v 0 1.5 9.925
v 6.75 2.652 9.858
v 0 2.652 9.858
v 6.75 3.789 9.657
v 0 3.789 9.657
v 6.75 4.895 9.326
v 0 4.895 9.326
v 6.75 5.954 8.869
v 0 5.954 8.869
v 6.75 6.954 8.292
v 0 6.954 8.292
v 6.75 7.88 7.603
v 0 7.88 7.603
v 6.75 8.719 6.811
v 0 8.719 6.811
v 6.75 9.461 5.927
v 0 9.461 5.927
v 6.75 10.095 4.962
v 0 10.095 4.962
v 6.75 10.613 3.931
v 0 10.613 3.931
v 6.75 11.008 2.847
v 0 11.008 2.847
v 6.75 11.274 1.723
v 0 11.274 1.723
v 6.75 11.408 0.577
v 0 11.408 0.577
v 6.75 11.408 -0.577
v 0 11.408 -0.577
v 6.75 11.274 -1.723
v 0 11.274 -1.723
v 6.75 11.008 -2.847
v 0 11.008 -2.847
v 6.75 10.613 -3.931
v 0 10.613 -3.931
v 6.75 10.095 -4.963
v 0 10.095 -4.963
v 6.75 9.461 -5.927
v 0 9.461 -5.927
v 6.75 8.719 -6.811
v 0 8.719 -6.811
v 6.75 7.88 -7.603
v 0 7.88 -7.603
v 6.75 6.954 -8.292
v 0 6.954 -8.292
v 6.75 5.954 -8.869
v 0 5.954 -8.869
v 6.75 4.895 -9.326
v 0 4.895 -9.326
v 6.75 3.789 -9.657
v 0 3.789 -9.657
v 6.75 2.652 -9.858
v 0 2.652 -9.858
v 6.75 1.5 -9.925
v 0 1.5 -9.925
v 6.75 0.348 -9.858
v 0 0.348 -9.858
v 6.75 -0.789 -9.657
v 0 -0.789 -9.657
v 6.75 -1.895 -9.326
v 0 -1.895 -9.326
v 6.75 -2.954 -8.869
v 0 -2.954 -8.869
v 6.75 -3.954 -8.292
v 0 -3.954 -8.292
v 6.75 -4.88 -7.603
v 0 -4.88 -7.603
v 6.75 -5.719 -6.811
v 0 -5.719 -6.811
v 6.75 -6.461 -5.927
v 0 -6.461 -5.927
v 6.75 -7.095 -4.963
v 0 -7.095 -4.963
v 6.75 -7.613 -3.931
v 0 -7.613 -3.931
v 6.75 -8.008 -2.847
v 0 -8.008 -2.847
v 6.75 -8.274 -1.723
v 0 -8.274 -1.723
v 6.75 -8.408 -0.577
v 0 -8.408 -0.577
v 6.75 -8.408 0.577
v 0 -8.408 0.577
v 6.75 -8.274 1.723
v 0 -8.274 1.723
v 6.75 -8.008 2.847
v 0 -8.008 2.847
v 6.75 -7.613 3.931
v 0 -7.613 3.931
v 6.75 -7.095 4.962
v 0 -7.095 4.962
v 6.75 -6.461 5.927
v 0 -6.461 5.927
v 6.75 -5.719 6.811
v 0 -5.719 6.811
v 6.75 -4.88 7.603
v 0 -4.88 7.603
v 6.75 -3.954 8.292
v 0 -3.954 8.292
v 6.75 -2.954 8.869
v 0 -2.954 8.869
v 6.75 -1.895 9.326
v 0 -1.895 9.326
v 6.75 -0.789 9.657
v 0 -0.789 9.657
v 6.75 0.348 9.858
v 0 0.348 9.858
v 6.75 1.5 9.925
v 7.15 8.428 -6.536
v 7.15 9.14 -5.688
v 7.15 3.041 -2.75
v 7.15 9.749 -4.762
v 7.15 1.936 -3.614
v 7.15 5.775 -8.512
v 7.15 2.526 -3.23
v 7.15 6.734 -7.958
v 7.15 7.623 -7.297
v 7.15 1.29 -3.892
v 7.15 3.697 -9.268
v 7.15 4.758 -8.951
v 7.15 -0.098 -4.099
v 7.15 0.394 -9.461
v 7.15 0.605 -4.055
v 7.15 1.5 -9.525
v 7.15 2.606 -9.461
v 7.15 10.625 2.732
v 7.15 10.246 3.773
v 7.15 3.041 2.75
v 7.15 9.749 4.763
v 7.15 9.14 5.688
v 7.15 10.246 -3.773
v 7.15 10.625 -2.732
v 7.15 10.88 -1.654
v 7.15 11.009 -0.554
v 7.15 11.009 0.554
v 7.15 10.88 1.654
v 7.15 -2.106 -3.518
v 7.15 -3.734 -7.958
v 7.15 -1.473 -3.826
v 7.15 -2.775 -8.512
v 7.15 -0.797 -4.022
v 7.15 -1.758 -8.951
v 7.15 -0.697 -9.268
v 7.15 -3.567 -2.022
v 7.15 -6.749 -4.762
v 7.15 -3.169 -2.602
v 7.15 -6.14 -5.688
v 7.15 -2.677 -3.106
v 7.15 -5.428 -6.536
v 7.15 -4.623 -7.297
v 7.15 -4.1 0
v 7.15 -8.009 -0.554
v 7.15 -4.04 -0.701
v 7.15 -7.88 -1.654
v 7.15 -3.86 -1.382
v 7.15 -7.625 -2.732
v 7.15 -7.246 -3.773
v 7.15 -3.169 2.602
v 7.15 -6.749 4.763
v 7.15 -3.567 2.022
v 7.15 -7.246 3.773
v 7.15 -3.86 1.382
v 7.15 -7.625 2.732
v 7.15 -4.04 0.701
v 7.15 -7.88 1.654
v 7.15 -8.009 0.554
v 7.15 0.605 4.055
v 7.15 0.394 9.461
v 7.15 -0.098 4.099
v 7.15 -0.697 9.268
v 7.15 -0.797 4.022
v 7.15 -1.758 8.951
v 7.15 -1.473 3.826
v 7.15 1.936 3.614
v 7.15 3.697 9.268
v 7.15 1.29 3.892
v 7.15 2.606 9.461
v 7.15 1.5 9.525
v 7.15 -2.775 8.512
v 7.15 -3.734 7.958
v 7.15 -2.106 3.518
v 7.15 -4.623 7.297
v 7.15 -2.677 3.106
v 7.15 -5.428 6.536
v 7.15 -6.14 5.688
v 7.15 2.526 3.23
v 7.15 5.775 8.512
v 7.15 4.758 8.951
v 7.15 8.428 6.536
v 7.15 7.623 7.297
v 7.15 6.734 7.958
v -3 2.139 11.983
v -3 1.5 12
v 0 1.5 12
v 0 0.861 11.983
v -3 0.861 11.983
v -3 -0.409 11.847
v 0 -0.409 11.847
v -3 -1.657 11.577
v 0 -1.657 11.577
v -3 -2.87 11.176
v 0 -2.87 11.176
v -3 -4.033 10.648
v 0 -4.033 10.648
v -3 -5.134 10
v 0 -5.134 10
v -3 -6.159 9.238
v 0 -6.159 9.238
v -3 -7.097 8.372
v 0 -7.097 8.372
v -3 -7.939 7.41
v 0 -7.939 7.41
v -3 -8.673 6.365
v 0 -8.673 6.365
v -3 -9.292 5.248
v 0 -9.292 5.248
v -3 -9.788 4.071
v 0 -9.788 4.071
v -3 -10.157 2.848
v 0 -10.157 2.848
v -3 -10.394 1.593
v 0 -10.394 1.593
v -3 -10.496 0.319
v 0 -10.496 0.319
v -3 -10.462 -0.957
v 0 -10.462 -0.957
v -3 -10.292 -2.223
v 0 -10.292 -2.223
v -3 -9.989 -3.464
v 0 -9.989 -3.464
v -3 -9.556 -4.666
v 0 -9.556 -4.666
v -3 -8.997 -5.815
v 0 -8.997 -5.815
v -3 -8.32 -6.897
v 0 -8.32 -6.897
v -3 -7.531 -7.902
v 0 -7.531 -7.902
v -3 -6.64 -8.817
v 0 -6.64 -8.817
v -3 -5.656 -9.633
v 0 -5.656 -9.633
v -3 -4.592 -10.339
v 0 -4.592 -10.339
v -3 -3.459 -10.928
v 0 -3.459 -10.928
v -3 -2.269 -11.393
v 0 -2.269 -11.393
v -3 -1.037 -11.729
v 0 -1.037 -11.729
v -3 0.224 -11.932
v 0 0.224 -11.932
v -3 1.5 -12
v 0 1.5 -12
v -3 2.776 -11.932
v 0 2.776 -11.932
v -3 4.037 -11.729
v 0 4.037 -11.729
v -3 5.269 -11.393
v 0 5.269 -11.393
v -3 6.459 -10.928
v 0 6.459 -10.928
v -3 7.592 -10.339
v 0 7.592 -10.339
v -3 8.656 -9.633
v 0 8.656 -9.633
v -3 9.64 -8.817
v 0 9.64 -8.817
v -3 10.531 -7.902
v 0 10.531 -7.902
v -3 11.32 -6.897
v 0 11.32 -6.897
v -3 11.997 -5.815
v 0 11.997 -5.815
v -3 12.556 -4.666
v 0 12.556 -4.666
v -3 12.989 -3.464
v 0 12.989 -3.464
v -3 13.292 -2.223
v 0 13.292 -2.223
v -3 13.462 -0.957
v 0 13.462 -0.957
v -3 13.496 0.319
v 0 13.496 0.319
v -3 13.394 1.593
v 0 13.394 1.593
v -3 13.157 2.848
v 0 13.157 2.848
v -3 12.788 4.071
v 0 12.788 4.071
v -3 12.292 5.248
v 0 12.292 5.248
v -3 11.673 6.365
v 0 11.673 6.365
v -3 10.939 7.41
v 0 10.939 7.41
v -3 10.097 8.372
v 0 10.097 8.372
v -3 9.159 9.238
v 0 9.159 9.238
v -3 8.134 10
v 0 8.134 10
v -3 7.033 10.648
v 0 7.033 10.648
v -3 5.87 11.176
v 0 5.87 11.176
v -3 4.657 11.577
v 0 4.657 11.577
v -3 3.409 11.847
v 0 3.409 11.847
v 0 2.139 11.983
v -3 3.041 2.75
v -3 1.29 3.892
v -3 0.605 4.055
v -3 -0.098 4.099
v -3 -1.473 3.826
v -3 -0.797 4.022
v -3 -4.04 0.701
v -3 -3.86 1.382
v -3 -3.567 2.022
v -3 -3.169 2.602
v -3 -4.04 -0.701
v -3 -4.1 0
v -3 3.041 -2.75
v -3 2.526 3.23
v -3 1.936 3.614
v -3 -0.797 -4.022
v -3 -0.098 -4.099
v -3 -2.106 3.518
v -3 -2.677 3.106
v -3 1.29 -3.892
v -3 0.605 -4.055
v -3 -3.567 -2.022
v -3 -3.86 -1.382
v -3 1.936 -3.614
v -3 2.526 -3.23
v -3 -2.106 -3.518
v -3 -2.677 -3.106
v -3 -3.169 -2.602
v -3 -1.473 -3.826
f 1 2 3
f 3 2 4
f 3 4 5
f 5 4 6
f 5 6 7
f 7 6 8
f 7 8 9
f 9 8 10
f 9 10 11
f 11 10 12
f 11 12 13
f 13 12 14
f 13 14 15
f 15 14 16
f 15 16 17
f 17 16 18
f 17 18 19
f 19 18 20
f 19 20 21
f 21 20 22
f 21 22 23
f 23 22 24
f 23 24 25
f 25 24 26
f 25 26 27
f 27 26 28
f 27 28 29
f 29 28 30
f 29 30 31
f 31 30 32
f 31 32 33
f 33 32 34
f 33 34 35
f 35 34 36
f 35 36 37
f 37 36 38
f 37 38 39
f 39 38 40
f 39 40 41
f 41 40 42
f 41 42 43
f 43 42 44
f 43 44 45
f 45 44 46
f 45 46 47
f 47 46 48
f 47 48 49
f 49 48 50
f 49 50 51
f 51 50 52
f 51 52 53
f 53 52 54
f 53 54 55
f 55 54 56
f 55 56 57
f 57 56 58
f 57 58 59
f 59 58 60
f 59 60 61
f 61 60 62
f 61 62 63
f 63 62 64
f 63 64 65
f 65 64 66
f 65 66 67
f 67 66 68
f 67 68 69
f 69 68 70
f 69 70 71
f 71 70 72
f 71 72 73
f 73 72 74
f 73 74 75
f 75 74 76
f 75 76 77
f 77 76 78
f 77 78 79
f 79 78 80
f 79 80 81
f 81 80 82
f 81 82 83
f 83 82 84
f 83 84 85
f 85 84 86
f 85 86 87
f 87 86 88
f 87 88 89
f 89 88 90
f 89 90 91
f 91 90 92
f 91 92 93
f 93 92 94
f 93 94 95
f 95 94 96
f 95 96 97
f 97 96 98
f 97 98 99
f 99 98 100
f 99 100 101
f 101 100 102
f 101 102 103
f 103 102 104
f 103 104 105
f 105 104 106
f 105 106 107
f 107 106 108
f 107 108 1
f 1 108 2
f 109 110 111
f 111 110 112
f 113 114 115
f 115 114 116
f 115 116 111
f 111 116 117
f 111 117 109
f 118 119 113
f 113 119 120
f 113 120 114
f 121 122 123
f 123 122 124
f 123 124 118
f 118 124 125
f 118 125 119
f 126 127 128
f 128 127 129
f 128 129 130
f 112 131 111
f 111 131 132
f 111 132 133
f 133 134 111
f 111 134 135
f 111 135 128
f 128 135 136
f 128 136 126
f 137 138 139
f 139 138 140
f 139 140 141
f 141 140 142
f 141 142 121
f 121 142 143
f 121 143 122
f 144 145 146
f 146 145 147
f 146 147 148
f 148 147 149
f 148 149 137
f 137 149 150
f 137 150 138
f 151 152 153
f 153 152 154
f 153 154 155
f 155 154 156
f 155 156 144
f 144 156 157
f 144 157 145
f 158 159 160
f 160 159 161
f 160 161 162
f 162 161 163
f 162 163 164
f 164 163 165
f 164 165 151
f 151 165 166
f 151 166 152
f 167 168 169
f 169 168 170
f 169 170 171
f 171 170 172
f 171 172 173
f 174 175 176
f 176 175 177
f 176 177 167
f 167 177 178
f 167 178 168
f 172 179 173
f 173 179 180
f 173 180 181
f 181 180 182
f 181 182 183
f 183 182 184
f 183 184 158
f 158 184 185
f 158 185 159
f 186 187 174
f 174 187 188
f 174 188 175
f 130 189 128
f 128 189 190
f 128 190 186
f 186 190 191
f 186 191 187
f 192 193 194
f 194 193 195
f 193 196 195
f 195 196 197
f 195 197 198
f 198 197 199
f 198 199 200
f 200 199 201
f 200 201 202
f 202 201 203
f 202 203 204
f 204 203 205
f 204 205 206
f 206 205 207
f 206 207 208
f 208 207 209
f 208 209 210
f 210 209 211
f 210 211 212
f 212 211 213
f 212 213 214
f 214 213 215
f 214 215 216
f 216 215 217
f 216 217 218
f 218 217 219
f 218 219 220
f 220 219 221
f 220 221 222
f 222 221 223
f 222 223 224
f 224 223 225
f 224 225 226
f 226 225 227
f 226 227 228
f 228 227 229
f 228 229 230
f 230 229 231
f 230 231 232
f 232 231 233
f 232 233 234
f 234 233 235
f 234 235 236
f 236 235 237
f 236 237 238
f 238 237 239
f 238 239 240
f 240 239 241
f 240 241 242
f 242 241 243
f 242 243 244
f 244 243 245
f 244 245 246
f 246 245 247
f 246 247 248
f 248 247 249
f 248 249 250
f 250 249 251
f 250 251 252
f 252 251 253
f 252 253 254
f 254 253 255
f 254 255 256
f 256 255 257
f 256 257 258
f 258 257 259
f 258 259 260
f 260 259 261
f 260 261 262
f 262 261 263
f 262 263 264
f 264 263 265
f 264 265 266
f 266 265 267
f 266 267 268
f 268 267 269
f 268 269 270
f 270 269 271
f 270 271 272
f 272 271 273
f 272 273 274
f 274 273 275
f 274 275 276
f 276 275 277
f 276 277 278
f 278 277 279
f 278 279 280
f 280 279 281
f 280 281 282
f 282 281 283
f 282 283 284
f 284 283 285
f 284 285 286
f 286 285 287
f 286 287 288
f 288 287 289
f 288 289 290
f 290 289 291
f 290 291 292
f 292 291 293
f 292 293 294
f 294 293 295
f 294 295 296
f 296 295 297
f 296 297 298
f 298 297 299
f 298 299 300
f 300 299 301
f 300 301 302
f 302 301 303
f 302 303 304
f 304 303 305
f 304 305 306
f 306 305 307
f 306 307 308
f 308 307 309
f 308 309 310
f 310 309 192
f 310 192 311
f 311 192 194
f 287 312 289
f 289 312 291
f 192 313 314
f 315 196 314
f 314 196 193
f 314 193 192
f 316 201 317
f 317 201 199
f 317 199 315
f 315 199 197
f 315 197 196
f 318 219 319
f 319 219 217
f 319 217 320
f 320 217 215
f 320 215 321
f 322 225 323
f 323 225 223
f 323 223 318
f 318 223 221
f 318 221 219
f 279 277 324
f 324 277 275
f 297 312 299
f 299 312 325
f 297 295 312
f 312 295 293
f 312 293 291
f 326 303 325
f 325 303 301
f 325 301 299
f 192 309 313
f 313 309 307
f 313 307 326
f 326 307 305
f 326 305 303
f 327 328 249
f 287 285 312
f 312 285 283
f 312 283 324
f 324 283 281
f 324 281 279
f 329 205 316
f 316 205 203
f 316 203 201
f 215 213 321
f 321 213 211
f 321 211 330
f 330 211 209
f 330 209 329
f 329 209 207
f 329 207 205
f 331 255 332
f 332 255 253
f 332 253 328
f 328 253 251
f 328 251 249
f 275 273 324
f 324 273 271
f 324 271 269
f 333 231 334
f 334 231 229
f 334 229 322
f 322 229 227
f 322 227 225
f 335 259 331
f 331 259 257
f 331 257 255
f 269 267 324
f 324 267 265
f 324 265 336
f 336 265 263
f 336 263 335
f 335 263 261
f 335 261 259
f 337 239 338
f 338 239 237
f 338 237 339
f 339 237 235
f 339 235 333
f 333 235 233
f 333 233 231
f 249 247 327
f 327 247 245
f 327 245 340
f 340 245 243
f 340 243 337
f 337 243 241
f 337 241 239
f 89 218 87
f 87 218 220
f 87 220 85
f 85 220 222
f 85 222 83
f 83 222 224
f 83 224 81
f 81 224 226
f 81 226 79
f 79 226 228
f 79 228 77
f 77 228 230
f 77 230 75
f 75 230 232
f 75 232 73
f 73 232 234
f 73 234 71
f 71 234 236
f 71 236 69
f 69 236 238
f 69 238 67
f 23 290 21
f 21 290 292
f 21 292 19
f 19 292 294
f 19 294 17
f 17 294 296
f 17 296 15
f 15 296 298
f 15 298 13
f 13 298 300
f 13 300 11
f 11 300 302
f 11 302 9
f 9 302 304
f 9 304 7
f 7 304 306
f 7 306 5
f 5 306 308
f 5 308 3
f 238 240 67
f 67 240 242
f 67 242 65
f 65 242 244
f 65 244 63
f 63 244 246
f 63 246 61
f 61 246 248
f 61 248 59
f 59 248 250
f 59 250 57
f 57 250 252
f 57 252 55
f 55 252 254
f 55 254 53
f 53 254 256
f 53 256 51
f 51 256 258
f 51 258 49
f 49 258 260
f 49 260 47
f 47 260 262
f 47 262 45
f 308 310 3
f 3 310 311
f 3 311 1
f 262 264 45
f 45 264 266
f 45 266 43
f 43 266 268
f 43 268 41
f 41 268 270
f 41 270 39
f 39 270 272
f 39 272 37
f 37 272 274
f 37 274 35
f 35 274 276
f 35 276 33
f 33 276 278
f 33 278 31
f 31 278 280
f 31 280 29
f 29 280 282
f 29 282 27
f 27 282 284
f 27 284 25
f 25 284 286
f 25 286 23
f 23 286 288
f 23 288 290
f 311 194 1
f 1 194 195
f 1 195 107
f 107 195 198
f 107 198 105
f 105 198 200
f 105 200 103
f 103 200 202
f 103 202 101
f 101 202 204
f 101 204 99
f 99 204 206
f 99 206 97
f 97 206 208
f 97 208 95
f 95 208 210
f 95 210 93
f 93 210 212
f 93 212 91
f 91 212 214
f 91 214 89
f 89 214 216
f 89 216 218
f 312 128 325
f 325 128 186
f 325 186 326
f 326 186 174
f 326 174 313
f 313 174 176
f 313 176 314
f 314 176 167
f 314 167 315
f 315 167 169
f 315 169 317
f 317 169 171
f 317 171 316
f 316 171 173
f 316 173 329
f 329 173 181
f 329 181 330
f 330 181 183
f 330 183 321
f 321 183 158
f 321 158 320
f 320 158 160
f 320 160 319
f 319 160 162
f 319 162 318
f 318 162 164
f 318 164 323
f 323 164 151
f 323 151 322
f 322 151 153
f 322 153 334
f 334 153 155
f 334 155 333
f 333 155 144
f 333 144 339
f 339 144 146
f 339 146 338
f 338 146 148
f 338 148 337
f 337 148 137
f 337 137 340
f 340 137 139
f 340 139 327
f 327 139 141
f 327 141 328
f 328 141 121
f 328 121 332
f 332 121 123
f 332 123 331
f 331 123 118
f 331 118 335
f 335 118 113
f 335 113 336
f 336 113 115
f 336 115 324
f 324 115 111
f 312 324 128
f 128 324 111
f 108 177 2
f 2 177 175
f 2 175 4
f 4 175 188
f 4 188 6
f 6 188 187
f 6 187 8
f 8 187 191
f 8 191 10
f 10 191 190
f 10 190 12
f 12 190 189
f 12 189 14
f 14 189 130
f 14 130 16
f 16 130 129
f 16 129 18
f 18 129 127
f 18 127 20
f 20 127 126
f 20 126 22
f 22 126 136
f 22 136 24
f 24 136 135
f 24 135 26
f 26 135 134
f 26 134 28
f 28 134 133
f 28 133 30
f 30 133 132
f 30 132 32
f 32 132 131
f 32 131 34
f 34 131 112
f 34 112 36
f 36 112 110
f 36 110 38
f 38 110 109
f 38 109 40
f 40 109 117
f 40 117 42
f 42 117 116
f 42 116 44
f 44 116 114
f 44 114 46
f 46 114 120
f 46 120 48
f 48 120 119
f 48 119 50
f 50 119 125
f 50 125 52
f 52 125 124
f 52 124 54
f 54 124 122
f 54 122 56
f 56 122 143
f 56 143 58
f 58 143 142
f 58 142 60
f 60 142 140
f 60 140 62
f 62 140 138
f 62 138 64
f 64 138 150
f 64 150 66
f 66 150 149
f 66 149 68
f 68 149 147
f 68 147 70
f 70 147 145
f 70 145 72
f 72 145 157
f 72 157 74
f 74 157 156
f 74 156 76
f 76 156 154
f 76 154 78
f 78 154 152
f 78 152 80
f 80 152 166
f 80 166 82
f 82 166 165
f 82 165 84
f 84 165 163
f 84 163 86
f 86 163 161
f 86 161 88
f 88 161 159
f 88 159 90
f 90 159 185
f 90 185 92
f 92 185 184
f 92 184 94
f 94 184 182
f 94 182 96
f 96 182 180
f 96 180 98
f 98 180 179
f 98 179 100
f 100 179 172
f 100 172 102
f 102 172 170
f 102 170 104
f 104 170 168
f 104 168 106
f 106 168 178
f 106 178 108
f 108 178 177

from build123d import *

# Parameters (mm, degrees)
SKIZZE1_R                            = 9.925
AUFSATZ_LINEAR_AUSTRAGEN1_DEPTH      = 7.15
SKIZZE2_R                            = 12
AUFSATZ_LINEAR_AUSTRAGEN2_DEPTH      = 3
SCHNITT_LINEAR_AUSTRAGEN2_DEPTH      = 21.718892345
SCHNITT_LINEAR_AUSTRAGEN2_DEPTH_BACK = 21.718892345
FASE1_SIZE                           = 0.4


with BuildPart() as part:
    # Skizze1 → Aufsatz-Linear austragen1 (new body)
    with BuildSketch(Plane(origin=(0, 0, 0), x_dir=(0, 0, -1), z_dir=(1, 0, 0))):
        with Locations((0, 1.5)):
            Circle(SKIZZE1_R)
    extrude(amount=AUFSATZ_LINEAR_AUSTRAGEN1_DEPTH)

    # Skizze2 → Aufsatz-Linear austragen2 (add)
    with BuildSketch(Plane.ZY):
        with Locations((0, 1.5)):
            Circle(SKIZZE2_R)
    extrude(amount=AUFSATZ_LINEAR_AUSTRAGEN2_DEPTH)

    # Skizze3 → Schnitt-Linear austragen2 (cut, two sides: drawn at the far end of the back side and taken through both)
    with BuildSketch(Plane(origin=(7.15, 0, 0), x_dir=(0, 0, -1), z_dir=(1, 0, 0)).offset(-SCHNITT_LINEAR_AUSTRAGEN2_DEPTH_BACK)):
        with BuildLine():
            Line((-2.75, 3.04097024), (2.75, 3.04097024))
            ThreePointArc((2.75, 3.04097024), (0, -4.1), (-2.75, 3.04097024))
        make_face()
    extrude(amount=SCHNITT_LINEAR_AUSTRAGEN2_DEPTH + SCHNITT_LINEAR_AUSTRAGEN2_DEPTH_BACK, mode=Mode.SUBTRACT)

    # Fase1
    fase1_edges = [part.edges().sort_by_distance(p)[0] for p in [
        (7.15, 1.5, 9.925),
    ]]
    chamfer(fase1_edges, length=FASE1_SIZE)


solid = part.part
